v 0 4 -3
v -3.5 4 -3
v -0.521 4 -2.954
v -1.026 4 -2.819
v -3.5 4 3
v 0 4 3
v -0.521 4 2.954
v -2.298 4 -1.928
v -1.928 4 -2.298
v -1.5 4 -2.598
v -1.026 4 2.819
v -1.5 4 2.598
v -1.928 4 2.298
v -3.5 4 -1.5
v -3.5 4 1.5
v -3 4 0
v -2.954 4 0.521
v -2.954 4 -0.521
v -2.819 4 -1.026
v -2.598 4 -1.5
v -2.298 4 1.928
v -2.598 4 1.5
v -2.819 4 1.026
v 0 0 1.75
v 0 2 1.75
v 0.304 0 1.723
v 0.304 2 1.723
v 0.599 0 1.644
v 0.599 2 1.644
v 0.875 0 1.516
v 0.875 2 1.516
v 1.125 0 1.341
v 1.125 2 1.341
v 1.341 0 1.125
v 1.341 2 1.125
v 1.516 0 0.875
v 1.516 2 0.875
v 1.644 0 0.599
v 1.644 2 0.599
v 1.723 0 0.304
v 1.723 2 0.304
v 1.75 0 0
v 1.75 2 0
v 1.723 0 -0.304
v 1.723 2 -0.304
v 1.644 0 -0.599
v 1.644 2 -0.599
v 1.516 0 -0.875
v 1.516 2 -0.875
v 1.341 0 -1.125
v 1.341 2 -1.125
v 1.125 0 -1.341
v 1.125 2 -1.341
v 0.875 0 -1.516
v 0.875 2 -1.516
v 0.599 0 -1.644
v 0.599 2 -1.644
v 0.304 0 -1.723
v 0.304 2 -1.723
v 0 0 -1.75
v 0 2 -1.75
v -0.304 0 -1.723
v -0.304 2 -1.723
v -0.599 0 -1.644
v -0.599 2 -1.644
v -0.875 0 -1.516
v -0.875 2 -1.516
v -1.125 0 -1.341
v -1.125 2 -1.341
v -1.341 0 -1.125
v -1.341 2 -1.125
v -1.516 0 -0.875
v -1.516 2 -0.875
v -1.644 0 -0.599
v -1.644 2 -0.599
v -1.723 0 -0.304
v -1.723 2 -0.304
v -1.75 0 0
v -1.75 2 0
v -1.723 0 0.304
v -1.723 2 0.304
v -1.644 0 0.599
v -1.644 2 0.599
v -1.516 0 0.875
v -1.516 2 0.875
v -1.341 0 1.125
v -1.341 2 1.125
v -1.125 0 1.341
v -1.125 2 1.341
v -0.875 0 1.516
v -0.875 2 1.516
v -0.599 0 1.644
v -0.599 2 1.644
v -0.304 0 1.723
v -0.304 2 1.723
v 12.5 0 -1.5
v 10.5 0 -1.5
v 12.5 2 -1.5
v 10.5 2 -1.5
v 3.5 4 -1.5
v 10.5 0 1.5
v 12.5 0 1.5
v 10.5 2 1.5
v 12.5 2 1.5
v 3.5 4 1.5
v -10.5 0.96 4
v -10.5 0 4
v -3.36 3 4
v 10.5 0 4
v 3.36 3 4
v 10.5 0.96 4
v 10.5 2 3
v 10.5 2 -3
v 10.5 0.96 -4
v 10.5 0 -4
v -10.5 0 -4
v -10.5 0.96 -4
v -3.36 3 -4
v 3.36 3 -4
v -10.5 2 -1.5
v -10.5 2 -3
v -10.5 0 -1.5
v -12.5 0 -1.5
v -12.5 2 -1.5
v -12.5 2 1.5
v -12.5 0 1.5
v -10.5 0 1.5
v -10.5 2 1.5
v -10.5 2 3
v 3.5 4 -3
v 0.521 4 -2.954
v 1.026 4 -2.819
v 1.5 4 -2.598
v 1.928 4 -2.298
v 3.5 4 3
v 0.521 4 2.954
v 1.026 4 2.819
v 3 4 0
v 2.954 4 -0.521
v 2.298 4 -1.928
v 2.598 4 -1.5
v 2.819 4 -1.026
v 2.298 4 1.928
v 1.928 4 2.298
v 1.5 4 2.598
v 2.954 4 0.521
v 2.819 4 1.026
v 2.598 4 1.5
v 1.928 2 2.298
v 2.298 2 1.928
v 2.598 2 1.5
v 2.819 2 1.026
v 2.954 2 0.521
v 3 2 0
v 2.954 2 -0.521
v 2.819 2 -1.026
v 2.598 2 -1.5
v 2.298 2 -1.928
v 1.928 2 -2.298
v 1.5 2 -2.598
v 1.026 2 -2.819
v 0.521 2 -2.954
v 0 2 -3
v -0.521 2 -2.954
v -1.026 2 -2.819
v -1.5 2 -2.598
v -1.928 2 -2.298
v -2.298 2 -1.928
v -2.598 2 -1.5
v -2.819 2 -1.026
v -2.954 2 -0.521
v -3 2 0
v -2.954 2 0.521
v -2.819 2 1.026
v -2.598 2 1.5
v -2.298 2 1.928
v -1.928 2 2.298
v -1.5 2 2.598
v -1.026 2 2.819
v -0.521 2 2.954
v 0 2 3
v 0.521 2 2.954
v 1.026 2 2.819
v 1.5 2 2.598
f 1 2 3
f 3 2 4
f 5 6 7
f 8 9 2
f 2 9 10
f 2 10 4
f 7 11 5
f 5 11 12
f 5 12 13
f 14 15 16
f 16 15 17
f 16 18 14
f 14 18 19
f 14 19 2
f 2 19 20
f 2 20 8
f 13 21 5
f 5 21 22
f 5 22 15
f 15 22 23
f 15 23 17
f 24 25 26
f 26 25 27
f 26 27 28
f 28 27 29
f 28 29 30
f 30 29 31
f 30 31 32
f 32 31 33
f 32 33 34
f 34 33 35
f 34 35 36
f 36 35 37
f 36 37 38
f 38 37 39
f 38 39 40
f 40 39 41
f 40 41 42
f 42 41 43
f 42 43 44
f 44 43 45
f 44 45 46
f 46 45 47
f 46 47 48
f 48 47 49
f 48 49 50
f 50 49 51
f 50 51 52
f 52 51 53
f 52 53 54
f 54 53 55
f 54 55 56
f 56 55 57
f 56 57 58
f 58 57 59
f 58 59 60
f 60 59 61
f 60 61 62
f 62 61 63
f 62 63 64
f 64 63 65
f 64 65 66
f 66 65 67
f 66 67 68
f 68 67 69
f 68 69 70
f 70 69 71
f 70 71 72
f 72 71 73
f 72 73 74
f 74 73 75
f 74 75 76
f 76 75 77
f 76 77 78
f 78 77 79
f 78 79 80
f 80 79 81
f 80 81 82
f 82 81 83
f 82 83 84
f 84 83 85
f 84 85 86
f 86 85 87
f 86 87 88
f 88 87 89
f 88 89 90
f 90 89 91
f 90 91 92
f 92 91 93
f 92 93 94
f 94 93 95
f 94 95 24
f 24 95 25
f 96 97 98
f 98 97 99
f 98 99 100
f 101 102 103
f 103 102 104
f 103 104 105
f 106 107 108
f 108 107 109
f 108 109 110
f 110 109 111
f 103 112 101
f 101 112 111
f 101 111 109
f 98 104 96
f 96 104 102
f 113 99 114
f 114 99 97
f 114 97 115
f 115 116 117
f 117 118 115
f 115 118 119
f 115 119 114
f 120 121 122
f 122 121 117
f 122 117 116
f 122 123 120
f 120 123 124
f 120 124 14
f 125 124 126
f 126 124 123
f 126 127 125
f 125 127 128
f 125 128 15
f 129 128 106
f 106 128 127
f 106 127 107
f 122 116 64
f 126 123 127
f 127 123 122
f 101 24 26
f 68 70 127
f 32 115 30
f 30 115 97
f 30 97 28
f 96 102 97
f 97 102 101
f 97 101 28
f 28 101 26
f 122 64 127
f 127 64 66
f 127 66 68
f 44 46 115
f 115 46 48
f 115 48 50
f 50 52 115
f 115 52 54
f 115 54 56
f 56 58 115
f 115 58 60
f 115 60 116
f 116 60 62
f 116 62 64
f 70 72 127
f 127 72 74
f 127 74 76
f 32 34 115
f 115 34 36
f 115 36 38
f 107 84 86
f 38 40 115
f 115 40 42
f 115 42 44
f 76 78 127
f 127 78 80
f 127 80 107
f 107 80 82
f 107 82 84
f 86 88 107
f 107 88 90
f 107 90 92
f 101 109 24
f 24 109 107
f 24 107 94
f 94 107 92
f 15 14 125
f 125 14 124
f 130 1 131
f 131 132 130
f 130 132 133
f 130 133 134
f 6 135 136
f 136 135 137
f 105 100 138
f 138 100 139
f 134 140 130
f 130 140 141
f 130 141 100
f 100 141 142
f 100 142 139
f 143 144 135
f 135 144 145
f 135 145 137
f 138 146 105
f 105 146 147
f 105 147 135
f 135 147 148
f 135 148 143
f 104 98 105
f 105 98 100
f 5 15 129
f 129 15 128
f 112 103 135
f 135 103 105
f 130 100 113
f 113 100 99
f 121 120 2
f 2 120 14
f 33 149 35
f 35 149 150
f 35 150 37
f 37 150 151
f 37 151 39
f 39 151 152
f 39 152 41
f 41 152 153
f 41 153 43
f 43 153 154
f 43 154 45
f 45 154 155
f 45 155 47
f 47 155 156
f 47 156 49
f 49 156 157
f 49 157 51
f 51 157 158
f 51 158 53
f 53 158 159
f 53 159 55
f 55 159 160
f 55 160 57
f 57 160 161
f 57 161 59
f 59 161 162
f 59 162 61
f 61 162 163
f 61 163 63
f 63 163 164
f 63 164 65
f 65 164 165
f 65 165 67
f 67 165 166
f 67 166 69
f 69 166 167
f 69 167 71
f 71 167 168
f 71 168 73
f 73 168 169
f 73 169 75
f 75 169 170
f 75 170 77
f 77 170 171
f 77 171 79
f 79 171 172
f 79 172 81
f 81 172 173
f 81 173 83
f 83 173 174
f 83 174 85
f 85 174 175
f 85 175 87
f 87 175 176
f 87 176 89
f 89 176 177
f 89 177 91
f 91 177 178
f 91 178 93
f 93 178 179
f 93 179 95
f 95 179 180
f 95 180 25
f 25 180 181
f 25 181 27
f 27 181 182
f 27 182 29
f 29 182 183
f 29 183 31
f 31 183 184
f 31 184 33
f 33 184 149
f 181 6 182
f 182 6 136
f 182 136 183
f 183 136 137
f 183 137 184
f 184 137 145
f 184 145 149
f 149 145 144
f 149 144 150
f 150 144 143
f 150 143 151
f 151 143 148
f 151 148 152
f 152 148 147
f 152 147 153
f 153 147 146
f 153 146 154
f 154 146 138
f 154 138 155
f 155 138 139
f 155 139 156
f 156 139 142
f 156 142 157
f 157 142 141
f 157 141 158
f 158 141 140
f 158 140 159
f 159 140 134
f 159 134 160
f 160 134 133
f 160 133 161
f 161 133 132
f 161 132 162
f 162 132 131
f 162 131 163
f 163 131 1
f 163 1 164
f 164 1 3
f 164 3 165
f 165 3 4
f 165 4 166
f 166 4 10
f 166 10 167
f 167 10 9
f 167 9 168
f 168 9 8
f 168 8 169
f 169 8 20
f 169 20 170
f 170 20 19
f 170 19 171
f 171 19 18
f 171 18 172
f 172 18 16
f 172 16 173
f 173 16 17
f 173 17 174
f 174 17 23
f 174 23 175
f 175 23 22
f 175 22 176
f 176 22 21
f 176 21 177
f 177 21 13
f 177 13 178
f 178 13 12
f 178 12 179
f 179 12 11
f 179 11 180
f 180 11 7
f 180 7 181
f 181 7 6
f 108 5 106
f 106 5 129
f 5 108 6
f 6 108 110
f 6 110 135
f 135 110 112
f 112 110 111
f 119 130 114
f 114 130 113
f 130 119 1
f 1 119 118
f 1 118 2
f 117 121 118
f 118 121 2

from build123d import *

# Parameters (mm, degrees)
SKETCH1_W                       = 21
SKETCH1_H                       = 2.5
SKETCH1_H_2                     = 3
SKETCH1_W_2                     = 2
BOSS_EXTRUDE1_DEPTH             = 2
BOSS_EXTRUDE2_REACH             = 15.276
BOSS_EXTRUDE2_DIRECTION_2_REACH = 15.276
BOSS_EXTRUDE3_REACH             = 17.37
SKETCH5_R                       = 1.75
CUT_EXTRUDE1_DEPTH              = 14.720422734
SKETCH6_R                       = 3
CUT_EXTRUDE2_DEPTH              = 2
CHAMFER1_SIZE                   = 1


with BuildPart() as part:
    # Sketch1 → Boss-Extrude1 (new body)
    with BuildSketch(Plane(origin=(0, 0, 0), x_dir=(1, 0, 0), z_dir=(0, 1, 0))):
        with Locations((0, -2.75)):
            Rectangle(SKETCH1_W, SKETCH1_H)
        Rectangle(SKETCH1_W, SKETCH1_H_2)
        with Locations((-11.5, 0)):
            Rectangle(SKETCH1_W_2, SKETCH1_H_2)
        with Locations((11.5, 0)):
            Rectangle(SKETCH1_W_2, SKETCH1_H_2)
        with Locations((0, 2.75)):
            Rectangle(SKETCH1_W, SKETCH1_H)
    extrude(amount=BOSS_EXTRUDE1_DEPTH)

    # Boss-Extrude2: up to this face of the body (flat: up to its plane)
    boss_extrude2_end = Plane(part.part.faces().sort_by_distance((-11.5, 1, 1.5))[0])
    # Sketch3 → Boss-Extrude2 (add, up to the picked face)
    with BuildSketch(Plane.XY, mode=Mode.PRIVATE) as boss_extrude2_sk1:
        Polygon((-12.5, 2), (-3.5, 4), (3.5, 4), (12.5, 2), align=None)
    boss_extrude2_tool1 = split(extrude(boss_extrude2_sk1.sketch, amount=BOSS_EXTRUDE2_REACH, mode=Mode.PRIVATE), bisect_by=boss_extrude2_end, keep=Keep.BOTH, mode=Mode.PRIVATE)
    add(boss_extrude2_tool1.solids().sort_by(Axis((0, 2.8125, 0), (0, 0, 1)))[0])

    # Boss-Extrude2 direction 2: up to this face of the body (flat: up to its plane)
    boss_extrude2_direction_2_end = Plane(part.part.faces().sort_by_distance((-11.5, 1, -1.5))[0])
    # Sketch3 → Boss-Extrude2 direction 2 (add, up to the picked face)
    with BuildSketch(Plane.XY, mode=Mode.PRIVATE) as boss_extrude2_direction_2_sk1:
        Polygon((-12.5, 2), (-3.5, 4), (3.5, 4), (12.5, 2), align=None)
    boss_extrude2_direction_2_tool1 = split(extrude(boss_extrude2_direction_2_sk1.sketch, amount=-BOSS_EXTRUDE2_DIRECTION_2_REACH, mode=Mode.PRIVATE), bisect_by=boss_extrude2_direction_2_end, keep=Keep.BOTH, mode=Mode.PRIVATE)
    add(boss_extrude2_direction_2_tool1.solids().sort_by(Axis((0, 2.8125, 0), (0, 0, -1)))[0])

    # Boss-Extrude3: up to this face of the body (flat: up to its plane)
    boss_extrude3_end = Plane(part.part.faces().sort_by_distance((0, 1, -4))[0])
    # Sketch4 → Boss-Extrude3 (add, up to the picked face)
    with BuildSketch(Plane.XY.offset(4), mode=Mode.PRIVATE) as boss_extrude3_sk1:
        Polygon((10.5, 2), (3.5, 4), (-3.5, 4), (-10.5, 2), align=None)
    boss_extrude3_tool1 = split(extrude(boss_extrude3_sk1.sketch, amount=-BOSS_EXTRUDE3_REACH, mode=Mode.PRIVATE), bisect_by=boss_extrude3_end, keep=Keep.BOTH, mode=Mode.PRIVATE)
    add(boss_extrude3_tool1.solids().sort_by(Axis((0, 2.833333, 4), (0, 0, -1)))[0])

    # Sketch5 → Cut-Extrude1 (cut, through all)
    with BuildSketch(Plane(origin=(0, 4, 0), x_dir=(1, 0, 0), z_dir=(0, 1, 0))):
        with Locations(Location((0, 0, 0), (0, 0, 270))):
            Circle(SKETCH5_R)
    extrude(amount=-CUT_EXTRUDE1_DEPTH, mode=Mode.SUBTRACT)

    # Sketch6 → Cut-Extrude2 (cut)
    with BuildSketch(Plane(origin=(0, 4, 0), x_dir=(1, 0, 0), z_dir=(0, 1, 0))):
        with Locations(Location((0, 0, 0), (0, 0, 270))):
            Circle(SKETCH6_R)
    extrude(amount=-CUT_EXTRUDE2_DEPTH, mode=Mode.SUBTRACT)

    # Chamfer1
    chamfer1_edges = [part.edges().sort_by_distance(p)[0] for p in [
        (7, 3, 4),
        (0, 4, 4),
        (-7, 3, 4),
        (7, 3, -4),
        (0, 4, -4),
        (-7, 3, -4),
    ]]
    chamfer(chamfer1_edges, length=CHAMFER1_SIZE - 0.0001)  # a hair under: the kernel refuses the full size


solid = part.part
